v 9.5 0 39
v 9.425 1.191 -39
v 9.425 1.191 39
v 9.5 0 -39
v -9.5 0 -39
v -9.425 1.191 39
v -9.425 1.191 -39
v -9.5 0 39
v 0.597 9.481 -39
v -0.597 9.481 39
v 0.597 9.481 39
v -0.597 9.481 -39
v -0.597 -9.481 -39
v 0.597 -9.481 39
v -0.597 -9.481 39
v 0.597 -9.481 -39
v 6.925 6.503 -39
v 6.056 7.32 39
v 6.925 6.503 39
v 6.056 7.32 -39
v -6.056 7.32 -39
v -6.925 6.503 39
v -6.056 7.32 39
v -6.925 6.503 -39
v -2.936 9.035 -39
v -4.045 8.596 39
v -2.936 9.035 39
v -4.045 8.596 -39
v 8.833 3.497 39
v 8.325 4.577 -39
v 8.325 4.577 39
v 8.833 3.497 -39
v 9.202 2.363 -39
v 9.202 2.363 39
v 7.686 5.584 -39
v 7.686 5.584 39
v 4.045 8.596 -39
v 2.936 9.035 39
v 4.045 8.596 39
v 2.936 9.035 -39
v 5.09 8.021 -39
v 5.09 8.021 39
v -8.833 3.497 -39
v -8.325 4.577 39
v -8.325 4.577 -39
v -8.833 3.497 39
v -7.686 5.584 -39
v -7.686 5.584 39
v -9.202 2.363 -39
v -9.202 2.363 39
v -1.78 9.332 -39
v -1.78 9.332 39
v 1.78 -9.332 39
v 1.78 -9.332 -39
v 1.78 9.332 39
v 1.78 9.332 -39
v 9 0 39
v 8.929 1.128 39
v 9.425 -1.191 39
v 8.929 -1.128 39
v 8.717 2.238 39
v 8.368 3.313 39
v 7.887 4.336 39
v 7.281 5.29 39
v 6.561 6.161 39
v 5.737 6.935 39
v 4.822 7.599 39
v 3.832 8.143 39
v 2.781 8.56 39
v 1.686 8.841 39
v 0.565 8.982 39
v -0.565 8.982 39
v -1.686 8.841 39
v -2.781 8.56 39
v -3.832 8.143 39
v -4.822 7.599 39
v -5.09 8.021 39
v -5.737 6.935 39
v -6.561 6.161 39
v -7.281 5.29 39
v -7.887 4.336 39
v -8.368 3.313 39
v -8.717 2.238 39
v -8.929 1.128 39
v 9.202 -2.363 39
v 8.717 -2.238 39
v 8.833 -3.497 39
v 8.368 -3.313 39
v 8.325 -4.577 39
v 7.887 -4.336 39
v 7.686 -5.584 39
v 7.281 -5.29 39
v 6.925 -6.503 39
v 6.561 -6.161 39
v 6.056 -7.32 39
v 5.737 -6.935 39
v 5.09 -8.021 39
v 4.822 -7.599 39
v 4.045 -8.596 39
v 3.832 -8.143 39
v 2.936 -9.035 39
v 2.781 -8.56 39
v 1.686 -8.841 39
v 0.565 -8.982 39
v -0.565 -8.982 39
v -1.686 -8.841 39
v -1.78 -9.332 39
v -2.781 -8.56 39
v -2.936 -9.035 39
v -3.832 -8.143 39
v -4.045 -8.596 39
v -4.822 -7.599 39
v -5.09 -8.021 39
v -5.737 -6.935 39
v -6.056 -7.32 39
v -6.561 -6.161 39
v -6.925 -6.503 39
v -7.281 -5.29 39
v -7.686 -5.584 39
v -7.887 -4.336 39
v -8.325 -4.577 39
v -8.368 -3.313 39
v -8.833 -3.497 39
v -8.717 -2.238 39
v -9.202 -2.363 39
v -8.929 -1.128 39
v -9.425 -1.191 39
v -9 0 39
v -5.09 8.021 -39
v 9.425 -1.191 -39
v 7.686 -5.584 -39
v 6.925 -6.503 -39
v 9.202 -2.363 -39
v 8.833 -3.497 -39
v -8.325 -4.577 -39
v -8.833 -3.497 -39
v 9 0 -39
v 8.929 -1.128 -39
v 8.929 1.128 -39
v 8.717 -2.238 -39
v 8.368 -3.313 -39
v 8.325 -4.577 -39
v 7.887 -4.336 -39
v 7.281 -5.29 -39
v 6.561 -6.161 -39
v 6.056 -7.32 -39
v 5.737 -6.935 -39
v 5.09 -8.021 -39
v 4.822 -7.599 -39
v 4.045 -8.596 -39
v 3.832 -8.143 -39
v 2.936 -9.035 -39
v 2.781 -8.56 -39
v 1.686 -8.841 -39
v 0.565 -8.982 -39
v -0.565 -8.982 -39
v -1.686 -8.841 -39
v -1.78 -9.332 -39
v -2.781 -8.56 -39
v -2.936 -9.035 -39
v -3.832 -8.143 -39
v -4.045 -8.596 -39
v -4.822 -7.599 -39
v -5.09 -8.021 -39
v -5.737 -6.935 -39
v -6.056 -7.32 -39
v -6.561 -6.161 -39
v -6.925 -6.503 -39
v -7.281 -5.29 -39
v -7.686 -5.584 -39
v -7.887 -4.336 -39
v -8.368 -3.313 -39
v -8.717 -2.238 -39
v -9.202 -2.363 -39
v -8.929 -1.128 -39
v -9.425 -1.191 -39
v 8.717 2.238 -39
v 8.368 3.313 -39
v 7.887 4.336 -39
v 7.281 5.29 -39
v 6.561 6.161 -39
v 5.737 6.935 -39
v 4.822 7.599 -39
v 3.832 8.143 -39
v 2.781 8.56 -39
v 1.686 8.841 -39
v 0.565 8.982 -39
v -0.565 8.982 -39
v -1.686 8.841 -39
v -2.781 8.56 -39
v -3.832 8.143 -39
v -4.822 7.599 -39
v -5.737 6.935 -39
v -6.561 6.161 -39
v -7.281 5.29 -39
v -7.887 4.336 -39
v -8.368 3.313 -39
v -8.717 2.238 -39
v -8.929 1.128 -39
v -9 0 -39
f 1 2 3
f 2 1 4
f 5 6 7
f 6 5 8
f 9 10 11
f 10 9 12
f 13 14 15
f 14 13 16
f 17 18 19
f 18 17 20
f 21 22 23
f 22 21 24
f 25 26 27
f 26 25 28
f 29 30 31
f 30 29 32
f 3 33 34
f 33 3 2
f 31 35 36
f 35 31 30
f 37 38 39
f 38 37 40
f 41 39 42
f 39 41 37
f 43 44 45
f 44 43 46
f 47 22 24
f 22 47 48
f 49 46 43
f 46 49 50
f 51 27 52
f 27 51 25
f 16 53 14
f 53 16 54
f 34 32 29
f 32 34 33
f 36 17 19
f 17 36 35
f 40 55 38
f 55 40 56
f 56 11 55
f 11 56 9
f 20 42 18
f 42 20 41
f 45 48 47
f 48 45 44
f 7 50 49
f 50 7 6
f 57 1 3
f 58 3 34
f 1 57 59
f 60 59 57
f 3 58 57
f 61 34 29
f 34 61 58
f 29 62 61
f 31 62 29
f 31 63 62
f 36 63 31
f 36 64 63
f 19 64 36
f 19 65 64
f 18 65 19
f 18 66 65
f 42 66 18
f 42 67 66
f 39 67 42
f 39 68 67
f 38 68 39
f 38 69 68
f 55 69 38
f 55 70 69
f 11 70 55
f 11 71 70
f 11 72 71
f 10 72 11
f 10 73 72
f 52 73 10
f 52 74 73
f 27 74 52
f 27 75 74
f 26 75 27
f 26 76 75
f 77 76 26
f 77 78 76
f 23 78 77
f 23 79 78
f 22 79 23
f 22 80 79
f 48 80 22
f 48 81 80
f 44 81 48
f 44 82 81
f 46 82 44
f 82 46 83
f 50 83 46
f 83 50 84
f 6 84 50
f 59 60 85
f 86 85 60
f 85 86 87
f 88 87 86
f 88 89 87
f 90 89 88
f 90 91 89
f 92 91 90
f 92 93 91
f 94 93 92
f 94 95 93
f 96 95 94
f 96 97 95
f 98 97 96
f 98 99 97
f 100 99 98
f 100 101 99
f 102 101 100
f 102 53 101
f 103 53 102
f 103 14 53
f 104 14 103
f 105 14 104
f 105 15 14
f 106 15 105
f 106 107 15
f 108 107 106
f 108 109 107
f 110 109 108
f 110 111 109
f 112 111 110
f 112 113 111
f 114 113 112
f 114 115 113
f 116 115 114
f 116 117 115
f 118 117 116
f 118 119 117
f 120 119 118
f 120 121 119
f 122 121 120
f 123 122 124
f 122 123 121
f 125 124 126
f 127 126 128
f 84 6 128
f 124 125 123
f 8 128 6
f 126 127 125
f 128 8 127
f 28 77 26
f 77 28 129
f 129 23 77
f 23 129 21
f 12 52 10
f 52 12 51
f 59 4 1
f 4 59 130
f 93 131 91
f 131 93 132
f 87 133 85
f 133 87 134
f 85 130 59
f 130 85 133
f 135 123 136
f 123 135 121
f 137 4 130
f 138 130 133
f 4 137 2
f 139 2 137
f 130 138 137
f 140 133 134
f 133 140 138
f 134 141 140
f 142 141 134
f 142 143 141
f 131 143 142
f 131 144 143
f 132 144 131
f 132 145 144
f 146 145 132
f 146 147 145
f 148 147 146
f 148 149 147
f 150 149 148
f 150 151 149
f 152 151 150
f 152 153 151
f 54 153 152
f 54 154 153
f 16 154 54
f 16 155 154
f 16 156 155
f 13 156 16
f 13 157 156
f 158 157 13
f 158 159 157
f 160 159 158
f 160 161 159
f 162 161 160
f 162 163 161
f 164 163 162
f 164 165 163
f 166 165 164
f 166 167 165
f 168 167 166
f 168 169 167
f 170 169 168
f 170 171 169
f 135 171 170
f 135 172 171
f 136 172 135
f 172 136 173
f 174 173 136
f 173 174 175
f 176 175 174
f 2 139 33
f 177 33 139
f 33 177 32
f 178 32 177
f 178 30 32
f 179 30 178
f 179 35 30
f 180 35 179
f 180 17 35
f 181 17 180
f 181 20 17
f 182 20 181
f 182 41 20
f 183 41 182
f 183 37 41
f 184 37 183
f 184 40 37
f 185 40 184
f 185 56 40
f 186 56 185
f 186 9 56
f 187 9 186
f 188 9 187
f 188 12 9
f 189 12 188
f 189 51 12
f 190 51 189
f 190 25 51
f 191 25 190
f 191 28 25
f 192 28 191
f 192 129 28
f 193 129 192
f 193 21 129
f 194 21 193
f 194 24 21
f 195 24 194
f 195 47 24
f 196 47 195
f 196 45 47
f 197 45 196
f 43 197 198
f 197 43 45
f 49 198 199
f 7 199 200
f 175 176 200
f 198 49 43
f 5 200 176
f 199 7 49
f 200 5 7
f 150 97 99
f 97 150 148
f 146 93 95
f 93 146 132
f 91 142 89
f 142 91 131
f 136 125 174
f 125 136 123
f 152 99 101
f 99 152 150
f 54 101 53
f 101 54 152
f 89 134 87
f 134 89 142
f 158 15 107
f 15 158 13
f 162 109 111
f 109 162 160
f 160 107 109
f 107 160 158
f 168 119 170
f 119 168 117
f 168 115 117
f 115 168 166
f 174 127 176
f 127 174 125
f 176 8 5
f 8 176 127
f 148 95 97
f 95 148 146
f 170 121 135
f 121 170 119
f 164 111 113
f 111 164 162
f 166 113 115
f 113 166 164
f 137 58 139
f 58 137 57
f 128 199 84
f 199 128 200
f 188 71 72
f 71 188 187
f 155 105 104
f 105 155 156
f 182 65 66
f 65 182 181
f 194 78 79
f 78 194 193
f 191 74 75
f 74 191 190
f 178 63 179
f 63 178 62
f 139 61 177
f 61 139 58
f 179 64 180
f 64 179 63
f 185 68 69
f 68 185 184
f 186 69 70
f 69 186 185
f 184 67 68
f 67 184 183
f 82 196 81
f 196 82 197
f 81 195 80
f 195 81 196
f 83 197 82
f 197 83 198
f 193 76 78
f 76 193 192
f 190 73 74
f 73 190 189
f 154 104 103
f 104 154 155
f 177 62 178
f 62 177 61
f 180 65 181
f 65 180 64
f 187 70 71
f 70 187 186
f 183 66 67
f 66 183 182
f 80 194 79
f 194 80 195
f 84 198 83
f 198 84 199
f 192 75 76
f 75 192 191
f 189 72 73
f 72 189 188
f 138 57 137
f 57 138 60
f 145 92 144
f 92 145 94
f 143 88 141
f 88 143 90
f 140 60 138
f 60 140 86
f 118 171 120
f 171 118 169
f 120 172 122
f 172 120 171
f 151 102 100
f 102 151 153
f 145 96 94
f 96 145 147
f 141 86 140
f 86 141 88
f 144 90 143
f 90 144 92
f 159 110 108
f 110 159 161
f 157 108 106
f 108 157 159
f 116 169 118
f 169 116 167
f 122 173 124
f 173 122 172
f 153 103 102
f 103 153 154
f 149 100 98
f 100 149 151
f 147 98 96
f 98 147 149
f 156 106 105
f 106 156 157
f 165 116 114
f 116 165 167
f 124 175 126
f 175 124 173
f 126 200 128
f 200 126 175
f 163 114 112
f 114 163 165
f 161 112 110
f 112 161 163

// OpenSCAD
$fn = 50;


difference() {
	union() {
		translate(v = [0, 0, -39.0000000000]) {
			cylinder(h = 78, r = 9.5000000000);
		}
	}
	union() {
		translate(v = [0, 0, -100.0000000000]) {
			cylinder(h = 200, r = 9);
		}
	}
}
